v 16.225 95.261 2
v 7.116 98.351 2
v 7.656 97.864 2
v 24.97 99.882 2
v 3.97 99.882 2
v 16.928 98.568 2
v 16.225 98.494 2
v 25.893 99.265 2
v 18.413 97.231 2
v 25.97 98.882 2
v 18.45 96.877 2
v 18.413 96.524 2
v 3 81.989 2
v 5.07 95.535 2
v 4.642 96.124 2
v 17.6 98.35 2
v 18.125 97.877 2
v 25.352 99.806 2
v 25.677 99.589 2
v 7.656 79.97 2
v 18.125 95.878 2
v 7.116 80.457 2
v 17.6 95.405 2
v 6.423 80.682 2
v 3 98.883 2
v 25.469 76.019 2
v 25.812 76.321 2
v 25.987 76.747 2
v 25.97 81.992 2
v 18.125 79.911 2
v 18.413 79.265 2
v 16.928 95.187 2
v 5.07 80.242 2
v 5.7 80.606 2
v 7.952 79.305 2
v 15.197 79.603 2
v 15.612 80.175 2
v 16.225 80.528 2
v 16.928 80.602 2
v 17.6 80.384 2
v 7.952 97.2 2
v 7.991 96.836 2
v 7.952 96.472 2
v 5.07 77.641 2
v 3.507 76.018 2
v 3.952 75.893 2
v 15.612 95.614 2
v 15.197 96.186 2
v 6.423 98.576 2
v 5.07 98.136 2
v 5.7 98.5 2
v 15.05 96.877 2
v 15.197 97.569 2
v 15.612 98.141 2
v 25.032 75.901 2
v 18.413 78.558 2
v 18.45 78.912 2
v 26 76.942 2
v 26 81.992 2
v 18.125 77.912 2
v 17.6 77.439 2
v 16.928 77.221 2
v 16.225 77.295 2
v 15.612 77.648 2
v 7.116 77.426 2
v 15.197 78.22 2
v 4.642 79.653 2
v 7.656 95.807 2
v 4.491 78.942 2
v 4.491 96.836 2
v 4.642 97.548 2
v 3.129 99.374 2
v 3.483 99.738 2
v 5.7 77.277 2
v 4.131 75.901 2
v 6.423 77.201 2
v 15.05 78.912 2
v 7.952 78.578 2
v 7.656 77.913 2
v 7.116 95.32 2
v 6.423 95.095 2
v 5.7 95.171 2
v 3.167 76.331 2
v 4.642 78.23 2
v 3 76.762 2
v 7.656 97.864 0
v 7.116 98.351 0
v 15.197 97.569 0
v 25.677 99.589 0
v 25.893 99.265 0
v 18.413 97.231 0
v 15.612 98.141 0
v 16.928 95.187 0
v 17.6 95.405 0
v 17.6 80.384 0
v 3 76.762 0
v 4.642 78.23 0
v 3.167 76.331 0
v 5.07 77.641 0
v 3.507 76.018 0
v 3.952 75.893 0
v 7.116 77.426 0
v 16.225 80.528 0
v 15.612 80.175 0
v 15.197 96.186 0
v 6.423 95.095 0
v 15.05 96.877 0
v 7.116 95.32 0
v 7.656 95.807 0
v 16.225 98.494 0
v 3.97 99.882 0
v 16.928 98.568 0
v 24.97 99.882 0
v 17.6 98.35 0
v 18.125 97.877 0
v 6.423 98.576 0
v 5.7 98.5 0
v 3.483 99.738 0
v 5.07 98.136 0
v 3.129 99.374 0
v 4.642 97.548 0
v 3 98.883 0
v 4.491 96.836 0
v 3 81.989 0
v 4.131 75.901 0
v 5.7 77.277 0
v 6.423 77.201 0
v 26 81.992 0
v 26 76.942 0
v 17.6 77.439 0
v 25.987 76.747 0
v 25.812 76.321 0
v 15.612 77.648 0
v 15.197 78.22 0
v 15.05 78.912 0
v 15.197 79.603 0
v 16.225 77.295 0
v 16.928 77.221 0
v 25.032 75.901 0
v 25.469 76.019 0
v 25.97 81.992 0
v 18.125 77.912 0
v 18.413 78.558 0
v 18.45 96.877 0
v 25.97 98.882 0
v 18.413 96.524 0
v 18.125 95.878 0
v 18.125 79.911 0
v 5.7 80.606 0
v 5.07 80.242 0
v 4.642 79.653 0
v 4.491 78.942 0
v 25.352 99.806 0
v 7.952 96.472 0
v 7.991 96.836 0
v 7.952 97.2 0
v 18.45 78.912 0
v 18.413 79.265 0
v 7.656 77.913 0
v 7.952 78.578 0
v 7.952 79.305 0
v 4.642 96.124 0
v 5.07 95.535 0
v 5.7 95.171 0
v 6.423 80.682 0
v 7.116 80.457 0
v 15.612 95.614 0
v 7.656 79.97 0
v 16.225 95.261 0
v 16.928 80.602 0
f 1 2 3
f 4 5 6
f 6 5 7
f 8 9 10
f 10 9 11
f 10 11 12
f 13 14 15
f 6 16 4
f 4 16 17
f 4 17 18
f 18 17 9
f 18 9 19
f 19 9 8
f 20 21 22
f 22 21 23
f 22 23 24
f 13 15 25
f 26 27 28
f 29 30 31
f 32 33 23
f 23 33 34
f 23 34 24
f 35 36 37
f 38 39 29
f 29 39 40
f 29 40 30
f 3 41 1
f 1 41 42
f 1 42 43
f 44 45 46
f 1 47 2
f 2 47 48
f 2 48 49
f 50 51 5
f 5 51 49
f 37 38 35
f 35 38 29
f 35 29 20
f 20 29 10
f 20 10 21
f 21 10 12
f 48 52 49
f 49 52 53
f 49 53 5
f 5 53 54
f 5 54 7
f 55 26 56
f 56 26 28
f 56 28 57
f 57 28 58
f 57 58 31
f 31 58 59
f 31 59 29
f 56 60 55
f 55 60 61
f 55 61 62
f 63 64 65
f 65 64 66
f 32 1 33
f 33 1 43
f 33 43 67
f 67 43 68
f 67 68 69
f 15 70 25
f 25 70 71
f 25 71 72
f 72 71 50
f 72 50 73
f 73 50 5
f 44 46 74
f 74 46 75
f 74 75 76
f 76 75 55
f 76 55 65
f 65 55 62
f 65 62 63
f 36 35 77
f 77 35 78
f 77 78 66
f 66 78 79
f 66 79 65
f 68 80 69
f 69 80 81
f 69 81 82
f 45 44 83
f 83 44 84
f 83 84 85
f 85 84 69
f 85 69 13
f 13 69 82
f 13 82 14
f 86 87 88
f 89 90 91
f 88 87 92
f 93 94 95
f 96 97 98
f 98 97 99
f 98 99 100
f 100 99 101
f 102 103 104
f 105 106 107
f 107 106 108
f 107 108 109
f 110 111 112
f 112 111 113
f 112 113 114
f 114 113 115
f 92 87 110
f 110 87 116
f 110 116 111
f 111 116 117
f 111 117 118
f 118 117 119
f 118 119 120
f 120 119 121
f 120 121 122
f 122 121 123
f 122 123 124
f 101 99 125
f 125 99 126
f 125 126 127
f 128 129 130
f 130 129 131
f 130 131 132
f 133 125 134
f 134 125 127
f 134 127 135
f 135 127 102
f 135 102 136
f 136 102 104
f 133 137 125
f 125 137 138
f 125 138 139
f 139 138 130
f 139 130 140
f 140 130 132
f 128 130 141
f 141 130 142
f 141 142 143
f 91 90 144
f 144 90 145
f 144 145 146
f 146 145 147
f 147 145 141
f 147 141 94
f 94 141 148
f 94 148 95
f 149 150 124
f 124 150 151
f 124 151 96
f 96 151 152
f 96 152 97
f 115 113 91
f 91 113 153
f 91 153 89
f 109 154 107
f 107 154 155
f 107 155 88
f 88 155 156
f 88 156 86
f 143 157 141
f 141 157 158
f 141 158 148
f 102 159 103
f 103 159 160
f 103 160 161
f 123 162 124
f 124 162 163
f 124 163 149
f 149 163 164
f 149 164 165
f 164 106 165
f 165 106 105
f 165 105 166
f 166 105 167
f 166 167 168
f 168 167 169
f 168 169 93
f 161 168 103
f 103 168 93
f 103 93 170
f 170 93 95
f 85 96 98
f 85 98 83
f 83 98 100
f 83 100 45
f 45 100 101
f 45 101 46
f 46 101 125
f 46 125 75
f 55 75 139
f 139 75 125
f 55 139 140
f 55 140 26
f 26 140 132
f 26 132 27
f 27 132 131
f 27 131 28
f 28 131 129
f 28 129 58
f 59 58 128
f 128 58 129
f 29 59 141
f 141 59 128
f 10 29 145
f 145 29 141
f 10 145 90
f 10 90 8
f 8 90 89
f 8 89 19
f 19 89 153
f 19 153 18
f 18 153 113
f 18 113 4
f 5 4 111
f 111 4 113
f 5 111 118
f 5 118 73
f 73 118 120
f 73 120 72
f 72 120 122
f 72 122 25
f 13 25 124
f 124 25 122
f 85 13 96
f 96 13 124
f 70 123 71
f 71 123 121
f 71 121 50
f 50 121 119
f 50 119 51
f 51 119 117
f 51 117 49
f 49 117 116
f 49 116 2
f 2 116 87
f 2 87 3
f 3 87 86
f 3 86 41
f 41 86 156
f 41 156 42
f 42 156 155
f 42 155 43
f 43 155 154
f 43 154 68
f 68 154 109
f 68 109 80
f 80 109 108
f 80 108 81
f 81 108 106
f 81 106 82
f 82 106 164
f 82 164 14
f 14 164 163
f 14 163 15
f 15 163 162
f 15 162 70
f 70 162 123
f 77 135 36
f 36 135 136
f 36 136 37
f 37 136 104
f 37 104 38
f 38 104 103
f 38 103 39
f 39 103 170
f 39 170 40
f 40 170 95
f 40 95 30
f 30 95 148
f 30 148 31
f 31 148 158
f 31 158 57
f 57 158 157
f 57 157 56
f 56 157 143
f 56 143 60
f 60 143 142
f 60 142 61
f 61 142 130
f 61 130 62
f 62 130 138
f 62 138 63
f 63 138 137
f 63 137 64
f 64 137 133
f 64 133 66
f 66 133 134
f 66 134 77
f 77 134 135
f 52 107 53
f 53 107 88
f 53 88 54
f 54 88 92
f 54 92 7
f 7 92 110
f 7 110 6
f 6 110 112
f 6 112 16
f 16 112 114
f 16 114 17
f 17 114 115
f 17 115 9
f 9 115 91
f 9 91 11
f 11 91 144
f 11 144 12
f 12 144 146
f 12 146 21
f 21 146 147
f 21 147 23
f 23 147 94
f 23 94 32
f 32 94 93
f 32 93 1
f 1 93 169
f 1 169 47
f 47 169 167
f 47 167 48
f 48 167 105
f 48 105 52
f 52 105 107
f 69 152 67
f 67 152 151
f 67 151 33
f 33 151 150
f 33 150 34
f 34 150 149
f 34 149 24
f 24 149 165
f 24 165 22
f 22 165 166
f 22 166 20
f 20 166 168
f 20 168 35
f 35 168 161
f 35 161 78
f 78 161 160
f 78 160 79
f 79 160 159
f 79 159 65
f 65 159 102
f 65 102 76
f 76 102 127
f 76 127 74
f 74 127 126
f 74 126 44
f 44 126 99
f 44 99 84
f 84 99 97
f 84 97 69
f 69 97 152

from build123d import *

# Parameters (mm, degrees)
SKETCH1_R           = 1.75
SKETCH1_R_2         = 1.7
BOSS_EXTRUDE1_DEPTH = 2


with BuildPart() as part:
    # Sketch1 → Boss-Extrude1 (new body)
    with BuildSketch(Plane.XY):
        with BuildLine():
            Line((4.131111122, 75.901391956), (25.032343796, 75.901377896))
            add(Edge.make_bspline(
                [(25.032343796, 75.901377896), (25.297692054, 75.90975298), (25.553711765, 76.028856816), (25.820691784, 76.317696861), (25.890807327, 76.431822393), (25.982618937, 76.678782523), (26.004172908, 76.809695074), (25.999986548, 76.942331771)],
                knots=[0, 0, 0, 0, 0.5, 0.5, 0.75, 0.75, 1, 1, 1, 1], degree=3))
            Line((25.999986548, 76.942331771), (25.999989945, 81.991990504))
            Line((25.999989945, 81.991990504), (25.969599942, 81.991985956))
            Line((25.969599942, 81.991985956), (25.969599942, 98.882300825))
            ThreePointArc((25.969599942, 98.882300825), (25.676706723, 99.589407606), (24.969599942, 99.882300825))
            Line((24.969599942, 99.882300825), (3.969599942, 99.882300825))
            ThreePointArc((3.969599942, 99.882300825), (3.282219087, 99.579042106), (2.999989942, 98.882762708))
            Line((2.999989942, 98.882762708), (2.999989942, 81.988548625))
            Line((2.999989942, 81.988548625), (2.999986426, 76.761900171))
            add(Edge.make_bspline(
                [(2.999986426, 76.761900171), (3.018498442, 76.630517465), (3.062890006, 76.50357159), (3.194804967, 76.27757553), (3.283868214, 76.176461233), (3.492056184, 76.01738597), (3.61249117, 75.958146472), (3.866997461, 75.89099095), (3.999692385, 75.882874863), (4.131111122, 75.901391956)],
                knots=[0, 0, 0, 0, 0.25, 0.25, 0.5, 0.5, 0.75, 0.75, 1, 1, 1, 1], degree=3))
        make_face()
        with Locations(Location((6.240524228, 78.941533895, 0), (0, 0, 180))):
            Circle(SKETCH1_R, mode=Mode.SUBTRACT)
        with Locations((16.749987873, 78.911635363)):
            Circle(SKETCH1_R_2, mode=Mode.SUBTRACT)
        with Locations((16.749999958, 96.877378149)):
            Circle(SKETCH1_R_2, mode=Mode.SUBTRACT)
        with Locations((6.240524228, 96.835747978)):
            Circle(SKETCH1_R, mode=Mode.SUBTRACT)
    extrude(amount=BOSS_EXTRUDE1_DEPTH)


solid = part.part
